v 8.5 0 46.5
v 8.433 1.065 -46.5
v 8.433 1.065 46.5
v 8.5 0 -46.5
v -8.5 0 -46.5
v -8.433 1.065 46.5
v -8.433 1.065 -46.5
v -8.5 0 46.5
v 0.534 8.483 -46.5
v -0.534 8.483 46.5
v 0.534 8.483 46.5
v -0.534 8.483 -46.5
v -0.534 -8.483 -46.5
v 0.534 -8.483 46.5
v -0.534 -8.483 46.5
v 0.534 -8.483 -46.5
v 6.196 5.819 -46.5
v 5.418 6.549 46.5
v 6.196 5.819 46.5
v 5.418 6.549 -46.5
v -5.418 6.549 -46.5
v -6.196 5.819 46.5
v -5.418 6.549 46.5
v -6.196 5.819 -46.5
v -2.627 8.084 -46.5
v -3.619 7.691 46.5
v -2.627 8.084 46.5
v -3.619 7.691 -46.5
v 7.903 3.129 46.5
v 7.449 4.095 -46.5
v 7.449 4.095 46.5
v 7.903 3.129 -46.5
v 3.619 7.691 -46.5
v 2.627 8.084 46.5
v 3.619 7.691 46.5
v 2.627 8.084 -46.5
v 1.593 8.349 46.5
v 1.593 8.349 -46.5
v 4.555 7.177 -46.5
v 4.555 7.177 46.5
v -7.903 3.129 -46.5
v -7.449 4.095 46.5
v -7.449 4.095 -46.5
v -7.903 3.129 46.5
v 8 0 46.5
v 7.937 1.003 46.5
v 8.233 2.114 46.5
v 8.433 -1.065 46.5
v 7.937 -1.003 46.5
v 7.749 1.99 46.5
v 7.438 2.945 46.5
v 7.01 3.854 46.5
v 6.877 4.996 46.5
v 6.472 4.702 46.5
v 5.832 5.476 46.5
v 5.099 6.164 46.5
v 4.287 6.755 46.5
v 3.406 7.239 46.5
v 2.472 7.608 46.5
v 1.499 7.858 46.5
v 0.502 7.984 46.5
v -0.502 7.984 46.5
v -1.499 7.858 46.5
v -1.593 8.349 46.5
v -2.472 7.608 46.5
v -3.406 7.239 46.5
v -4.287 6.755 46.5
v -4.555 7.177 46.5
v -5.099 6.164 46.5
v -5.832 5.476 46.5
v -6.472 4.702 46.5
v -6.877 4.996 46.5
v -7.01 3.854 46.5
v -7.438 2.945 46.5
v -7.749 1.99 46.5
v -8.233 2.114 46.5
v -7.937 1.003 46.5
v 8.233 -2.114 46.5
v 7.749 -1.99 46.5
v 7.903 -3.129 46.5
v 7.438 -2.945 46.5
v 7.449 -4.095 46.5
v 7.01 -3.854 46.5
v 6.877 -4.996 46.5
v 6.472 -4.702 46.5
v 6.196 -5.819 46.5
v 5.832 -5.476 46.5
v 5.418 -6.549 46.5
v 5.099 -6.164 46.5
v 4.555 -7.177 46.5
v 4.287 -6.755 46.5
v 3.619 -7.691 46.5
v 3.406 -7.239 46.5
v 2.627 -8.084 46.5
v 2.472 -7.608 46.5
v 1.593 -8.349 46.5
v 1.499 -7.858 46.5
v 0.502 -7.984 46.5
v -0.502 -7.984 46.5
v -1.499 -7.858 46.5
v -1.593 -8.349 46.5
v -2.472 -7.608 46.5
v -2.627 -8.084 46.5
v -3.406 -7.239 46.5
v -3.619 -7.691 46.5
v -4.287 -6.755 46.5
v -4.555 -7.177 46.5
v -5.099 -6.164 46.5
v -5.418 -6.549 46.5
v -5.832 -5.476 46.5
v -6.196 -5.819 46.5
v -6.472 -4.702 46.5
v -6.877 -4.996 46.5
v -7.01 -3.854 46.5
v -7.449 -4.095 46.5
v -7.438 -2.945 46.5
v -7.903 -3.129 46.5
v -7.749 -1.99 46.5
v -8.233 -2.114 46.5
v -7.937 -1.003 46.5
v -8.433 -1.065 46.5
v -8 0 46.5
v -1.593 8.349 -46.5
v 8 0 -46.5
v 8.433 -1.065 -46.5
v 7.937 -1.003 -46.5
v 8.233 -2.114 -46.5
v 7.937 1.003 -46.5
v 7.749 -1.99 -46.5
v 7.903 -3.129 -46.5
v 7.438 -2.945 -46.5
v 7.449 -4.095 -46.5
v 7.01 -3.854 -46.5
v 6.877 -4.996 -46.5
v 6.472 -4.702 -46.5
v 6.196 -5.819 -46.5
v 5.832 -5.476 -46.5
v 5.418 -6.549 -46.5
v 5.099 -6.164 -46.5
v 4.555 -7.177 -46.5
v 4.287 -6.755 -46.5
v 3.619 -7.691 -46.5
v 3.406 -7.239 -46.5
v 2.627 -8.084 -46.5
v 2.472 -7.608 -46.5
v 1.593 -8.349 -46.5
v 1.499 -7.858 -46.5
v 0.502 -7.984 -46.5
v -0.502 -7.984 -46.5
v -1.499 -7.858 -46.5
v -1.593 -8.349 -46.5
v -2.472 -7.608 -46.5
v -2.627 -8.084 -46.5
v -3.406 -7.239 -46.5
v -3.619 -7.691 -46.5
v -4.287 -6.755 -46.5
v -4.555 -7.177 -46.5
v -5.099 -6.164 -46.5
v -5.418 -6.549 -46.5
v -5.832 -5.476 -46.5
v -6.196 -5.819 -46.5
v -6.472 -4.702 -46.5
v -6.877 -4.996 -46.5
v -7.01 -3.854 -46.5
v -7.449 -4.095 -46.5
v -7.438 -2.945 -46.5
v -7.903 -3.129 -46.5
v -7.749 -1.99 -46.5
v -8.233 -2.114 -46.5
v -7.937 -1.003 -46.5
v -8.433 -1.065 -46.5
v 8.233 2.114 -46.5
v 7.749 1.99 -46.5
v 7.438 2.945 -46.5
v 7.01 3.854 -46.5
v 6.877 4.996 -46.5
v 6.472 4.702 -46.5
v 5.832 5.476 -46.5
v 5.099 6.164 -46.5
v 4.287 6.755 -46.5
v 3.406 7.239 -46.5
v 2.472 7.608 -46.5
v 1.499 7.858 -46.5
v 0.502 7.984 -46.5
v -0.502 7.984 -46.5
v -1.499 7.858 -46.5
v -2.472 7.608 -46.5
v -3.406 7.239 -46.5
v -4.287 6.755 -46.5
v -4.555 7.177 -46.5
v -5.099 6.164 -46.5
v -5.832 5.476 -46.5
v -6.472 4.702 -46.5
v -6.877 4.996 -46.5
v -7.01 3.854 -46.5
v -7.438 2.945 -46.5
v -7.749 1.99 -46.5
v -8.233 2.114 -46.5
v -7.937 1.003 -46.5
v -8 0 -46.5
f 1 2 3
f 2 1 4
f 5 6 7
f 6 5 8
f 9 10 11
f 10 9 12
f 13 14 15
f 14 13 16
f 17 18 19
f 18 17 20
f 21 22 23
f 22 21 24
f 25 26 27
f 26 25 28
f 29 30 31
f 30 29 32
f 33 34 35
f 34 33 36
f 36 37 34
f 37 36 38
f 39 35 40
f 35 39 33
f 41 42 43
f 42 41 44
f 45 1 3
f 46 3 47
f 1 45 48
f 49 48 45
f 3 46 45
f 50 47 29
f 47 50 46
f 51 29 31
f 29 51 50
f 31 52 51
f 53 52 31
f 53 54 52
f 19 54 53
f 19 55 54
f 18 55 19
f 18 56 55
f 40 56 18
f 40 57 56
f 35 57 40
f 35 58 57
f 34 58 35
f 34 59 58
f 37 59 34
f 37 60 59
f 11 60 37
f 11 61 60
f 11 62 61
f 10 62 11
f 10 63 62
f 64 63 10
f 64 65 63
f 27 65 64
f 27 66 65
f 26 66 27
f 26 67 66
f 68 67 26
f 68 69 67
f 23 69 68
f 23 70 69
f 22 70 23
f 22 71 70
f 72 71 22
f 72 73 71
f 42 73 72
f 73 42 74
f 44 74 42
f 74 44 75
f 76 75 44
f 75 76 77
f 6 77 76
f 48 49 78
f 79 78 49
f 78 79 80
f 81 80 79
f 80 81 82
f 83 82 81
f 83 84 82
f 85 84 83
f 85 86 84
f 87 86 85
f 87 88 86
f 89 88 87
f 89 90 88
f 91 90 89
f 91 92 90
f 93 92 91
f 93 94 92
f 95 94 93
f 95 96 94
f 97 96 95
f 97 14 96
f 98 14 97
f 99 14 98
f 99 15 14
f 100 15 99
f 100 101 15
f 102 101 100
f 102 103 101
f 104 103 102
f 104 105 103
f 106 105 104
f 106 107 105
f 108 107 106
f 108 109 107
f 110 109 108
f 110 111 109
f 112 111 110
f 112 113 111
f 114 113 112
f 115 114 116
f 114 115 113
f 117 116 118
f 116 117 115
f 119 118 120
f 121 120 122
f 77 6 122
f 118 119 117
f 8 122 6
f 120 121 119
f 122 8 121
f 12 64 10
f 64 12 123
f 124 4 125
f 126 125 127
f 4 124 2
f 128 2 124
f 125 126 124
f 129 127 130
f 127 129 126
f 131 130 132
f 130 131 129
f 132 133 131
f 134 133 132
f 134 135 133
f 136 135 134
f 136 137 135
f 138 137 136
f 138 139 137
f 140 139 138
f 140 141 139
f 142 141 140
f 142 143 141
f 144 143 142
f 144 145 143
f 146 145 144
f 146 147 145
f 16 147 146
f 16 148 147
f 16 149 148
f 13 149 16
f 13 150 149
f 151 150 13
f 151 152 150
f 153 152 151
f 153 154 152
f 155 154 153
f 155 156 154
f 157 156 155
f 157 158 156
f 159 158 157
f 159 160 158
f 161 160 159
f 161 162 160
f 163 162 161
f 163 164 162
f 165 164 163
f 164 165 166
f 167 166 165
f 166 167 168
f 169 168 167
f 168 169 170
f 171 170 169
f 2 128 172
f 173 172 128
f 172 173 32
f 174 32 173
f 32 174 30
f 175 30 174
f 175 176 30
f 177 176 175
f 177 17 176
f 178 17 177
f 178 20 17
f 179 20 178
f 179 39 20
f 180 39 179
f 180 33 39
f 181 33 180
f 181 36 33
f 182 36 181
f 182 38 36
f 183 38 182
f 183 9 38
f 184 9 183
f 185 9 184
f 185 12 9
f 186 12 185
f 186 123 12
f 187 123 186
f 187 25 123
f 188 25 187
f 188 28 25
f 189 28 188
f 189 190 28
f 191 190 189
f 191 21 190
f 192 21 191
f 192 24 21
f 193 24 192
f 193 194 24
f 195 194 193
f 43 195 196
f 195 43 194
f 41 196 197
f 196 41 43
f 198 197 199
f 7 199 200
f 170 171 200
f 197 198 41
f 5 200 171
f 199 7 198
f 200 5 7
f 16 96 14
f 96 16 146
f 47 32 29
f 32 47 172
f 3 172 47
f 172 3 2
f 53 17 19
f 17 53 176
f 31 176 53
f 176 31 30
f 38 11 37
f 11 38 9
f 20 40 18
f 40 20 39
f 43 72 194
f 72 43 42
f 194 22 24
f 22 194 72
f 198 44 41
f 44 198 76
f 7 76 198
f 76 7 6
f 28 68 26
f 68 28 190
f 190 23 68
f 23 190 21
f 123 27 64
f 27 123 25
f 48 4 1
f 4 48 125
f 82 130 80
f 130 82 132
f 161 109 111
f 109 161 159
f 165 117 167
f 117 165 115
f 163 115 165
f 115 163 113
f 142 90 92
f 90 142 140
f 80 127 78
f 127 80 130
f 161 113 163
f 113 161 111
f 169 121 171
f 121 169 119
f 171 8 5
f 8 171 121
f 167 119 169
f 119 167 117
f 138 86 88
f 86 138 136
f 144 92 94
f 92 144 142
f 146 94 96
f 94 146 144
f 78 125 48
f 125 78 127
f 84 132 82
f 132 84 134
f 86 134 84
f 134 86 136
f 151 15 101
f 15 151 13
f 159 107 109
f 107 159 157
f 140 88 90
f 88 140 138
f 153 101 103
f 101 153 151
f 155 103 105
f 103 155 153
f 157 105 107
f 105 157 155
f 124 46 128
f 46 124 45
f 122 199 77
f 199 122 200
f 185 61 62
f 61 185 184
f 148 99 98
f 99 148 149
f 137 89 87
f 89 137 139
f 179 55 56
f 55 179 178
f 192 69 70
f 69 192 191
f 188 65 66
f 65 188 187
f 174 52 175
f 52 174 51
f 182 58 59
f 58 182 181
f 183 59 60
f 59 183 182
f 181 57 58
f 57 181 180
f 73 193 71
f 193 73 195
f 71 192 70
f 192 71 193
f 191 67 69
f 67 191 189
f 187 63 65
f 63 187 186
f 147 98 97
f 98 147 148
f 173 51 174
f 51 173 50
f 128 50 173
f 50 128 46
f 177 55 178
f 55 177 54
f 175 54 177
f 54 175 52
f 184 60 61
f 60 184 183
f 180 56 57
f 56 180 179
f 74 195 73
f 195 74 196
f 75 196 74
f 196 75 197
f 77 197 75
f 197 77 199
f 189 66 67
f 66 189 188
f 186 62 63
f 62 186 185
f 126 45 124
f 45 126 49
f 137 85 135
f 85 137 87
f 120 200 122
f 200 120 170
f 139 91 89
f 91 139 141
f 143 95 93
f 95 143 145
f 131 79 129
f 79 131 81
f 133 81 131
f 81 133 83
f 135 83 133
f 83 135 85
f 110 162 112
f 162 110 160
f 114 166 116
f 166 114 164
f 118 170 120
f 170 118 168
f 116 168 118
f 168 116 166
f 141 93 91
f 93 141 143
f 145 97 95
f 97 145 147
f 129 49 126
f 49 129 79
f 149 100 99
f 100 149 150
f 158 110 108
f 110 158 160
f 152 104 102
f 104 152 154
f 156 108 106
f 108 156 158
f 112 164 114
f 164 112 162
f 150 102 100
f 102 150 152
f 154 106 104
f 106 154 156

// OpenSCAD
$fn = 50;


difference() {
	union() {
		translate(v = [0, 0, -46.5000000000]) {
			cylinder(h = 93, r = 8.5000000000);
		}
	}
	union() {
		translate(v = [0, 0, -100.0000000000]) {
			cylinder(h = 200, r = 8);
		}
	}
}
